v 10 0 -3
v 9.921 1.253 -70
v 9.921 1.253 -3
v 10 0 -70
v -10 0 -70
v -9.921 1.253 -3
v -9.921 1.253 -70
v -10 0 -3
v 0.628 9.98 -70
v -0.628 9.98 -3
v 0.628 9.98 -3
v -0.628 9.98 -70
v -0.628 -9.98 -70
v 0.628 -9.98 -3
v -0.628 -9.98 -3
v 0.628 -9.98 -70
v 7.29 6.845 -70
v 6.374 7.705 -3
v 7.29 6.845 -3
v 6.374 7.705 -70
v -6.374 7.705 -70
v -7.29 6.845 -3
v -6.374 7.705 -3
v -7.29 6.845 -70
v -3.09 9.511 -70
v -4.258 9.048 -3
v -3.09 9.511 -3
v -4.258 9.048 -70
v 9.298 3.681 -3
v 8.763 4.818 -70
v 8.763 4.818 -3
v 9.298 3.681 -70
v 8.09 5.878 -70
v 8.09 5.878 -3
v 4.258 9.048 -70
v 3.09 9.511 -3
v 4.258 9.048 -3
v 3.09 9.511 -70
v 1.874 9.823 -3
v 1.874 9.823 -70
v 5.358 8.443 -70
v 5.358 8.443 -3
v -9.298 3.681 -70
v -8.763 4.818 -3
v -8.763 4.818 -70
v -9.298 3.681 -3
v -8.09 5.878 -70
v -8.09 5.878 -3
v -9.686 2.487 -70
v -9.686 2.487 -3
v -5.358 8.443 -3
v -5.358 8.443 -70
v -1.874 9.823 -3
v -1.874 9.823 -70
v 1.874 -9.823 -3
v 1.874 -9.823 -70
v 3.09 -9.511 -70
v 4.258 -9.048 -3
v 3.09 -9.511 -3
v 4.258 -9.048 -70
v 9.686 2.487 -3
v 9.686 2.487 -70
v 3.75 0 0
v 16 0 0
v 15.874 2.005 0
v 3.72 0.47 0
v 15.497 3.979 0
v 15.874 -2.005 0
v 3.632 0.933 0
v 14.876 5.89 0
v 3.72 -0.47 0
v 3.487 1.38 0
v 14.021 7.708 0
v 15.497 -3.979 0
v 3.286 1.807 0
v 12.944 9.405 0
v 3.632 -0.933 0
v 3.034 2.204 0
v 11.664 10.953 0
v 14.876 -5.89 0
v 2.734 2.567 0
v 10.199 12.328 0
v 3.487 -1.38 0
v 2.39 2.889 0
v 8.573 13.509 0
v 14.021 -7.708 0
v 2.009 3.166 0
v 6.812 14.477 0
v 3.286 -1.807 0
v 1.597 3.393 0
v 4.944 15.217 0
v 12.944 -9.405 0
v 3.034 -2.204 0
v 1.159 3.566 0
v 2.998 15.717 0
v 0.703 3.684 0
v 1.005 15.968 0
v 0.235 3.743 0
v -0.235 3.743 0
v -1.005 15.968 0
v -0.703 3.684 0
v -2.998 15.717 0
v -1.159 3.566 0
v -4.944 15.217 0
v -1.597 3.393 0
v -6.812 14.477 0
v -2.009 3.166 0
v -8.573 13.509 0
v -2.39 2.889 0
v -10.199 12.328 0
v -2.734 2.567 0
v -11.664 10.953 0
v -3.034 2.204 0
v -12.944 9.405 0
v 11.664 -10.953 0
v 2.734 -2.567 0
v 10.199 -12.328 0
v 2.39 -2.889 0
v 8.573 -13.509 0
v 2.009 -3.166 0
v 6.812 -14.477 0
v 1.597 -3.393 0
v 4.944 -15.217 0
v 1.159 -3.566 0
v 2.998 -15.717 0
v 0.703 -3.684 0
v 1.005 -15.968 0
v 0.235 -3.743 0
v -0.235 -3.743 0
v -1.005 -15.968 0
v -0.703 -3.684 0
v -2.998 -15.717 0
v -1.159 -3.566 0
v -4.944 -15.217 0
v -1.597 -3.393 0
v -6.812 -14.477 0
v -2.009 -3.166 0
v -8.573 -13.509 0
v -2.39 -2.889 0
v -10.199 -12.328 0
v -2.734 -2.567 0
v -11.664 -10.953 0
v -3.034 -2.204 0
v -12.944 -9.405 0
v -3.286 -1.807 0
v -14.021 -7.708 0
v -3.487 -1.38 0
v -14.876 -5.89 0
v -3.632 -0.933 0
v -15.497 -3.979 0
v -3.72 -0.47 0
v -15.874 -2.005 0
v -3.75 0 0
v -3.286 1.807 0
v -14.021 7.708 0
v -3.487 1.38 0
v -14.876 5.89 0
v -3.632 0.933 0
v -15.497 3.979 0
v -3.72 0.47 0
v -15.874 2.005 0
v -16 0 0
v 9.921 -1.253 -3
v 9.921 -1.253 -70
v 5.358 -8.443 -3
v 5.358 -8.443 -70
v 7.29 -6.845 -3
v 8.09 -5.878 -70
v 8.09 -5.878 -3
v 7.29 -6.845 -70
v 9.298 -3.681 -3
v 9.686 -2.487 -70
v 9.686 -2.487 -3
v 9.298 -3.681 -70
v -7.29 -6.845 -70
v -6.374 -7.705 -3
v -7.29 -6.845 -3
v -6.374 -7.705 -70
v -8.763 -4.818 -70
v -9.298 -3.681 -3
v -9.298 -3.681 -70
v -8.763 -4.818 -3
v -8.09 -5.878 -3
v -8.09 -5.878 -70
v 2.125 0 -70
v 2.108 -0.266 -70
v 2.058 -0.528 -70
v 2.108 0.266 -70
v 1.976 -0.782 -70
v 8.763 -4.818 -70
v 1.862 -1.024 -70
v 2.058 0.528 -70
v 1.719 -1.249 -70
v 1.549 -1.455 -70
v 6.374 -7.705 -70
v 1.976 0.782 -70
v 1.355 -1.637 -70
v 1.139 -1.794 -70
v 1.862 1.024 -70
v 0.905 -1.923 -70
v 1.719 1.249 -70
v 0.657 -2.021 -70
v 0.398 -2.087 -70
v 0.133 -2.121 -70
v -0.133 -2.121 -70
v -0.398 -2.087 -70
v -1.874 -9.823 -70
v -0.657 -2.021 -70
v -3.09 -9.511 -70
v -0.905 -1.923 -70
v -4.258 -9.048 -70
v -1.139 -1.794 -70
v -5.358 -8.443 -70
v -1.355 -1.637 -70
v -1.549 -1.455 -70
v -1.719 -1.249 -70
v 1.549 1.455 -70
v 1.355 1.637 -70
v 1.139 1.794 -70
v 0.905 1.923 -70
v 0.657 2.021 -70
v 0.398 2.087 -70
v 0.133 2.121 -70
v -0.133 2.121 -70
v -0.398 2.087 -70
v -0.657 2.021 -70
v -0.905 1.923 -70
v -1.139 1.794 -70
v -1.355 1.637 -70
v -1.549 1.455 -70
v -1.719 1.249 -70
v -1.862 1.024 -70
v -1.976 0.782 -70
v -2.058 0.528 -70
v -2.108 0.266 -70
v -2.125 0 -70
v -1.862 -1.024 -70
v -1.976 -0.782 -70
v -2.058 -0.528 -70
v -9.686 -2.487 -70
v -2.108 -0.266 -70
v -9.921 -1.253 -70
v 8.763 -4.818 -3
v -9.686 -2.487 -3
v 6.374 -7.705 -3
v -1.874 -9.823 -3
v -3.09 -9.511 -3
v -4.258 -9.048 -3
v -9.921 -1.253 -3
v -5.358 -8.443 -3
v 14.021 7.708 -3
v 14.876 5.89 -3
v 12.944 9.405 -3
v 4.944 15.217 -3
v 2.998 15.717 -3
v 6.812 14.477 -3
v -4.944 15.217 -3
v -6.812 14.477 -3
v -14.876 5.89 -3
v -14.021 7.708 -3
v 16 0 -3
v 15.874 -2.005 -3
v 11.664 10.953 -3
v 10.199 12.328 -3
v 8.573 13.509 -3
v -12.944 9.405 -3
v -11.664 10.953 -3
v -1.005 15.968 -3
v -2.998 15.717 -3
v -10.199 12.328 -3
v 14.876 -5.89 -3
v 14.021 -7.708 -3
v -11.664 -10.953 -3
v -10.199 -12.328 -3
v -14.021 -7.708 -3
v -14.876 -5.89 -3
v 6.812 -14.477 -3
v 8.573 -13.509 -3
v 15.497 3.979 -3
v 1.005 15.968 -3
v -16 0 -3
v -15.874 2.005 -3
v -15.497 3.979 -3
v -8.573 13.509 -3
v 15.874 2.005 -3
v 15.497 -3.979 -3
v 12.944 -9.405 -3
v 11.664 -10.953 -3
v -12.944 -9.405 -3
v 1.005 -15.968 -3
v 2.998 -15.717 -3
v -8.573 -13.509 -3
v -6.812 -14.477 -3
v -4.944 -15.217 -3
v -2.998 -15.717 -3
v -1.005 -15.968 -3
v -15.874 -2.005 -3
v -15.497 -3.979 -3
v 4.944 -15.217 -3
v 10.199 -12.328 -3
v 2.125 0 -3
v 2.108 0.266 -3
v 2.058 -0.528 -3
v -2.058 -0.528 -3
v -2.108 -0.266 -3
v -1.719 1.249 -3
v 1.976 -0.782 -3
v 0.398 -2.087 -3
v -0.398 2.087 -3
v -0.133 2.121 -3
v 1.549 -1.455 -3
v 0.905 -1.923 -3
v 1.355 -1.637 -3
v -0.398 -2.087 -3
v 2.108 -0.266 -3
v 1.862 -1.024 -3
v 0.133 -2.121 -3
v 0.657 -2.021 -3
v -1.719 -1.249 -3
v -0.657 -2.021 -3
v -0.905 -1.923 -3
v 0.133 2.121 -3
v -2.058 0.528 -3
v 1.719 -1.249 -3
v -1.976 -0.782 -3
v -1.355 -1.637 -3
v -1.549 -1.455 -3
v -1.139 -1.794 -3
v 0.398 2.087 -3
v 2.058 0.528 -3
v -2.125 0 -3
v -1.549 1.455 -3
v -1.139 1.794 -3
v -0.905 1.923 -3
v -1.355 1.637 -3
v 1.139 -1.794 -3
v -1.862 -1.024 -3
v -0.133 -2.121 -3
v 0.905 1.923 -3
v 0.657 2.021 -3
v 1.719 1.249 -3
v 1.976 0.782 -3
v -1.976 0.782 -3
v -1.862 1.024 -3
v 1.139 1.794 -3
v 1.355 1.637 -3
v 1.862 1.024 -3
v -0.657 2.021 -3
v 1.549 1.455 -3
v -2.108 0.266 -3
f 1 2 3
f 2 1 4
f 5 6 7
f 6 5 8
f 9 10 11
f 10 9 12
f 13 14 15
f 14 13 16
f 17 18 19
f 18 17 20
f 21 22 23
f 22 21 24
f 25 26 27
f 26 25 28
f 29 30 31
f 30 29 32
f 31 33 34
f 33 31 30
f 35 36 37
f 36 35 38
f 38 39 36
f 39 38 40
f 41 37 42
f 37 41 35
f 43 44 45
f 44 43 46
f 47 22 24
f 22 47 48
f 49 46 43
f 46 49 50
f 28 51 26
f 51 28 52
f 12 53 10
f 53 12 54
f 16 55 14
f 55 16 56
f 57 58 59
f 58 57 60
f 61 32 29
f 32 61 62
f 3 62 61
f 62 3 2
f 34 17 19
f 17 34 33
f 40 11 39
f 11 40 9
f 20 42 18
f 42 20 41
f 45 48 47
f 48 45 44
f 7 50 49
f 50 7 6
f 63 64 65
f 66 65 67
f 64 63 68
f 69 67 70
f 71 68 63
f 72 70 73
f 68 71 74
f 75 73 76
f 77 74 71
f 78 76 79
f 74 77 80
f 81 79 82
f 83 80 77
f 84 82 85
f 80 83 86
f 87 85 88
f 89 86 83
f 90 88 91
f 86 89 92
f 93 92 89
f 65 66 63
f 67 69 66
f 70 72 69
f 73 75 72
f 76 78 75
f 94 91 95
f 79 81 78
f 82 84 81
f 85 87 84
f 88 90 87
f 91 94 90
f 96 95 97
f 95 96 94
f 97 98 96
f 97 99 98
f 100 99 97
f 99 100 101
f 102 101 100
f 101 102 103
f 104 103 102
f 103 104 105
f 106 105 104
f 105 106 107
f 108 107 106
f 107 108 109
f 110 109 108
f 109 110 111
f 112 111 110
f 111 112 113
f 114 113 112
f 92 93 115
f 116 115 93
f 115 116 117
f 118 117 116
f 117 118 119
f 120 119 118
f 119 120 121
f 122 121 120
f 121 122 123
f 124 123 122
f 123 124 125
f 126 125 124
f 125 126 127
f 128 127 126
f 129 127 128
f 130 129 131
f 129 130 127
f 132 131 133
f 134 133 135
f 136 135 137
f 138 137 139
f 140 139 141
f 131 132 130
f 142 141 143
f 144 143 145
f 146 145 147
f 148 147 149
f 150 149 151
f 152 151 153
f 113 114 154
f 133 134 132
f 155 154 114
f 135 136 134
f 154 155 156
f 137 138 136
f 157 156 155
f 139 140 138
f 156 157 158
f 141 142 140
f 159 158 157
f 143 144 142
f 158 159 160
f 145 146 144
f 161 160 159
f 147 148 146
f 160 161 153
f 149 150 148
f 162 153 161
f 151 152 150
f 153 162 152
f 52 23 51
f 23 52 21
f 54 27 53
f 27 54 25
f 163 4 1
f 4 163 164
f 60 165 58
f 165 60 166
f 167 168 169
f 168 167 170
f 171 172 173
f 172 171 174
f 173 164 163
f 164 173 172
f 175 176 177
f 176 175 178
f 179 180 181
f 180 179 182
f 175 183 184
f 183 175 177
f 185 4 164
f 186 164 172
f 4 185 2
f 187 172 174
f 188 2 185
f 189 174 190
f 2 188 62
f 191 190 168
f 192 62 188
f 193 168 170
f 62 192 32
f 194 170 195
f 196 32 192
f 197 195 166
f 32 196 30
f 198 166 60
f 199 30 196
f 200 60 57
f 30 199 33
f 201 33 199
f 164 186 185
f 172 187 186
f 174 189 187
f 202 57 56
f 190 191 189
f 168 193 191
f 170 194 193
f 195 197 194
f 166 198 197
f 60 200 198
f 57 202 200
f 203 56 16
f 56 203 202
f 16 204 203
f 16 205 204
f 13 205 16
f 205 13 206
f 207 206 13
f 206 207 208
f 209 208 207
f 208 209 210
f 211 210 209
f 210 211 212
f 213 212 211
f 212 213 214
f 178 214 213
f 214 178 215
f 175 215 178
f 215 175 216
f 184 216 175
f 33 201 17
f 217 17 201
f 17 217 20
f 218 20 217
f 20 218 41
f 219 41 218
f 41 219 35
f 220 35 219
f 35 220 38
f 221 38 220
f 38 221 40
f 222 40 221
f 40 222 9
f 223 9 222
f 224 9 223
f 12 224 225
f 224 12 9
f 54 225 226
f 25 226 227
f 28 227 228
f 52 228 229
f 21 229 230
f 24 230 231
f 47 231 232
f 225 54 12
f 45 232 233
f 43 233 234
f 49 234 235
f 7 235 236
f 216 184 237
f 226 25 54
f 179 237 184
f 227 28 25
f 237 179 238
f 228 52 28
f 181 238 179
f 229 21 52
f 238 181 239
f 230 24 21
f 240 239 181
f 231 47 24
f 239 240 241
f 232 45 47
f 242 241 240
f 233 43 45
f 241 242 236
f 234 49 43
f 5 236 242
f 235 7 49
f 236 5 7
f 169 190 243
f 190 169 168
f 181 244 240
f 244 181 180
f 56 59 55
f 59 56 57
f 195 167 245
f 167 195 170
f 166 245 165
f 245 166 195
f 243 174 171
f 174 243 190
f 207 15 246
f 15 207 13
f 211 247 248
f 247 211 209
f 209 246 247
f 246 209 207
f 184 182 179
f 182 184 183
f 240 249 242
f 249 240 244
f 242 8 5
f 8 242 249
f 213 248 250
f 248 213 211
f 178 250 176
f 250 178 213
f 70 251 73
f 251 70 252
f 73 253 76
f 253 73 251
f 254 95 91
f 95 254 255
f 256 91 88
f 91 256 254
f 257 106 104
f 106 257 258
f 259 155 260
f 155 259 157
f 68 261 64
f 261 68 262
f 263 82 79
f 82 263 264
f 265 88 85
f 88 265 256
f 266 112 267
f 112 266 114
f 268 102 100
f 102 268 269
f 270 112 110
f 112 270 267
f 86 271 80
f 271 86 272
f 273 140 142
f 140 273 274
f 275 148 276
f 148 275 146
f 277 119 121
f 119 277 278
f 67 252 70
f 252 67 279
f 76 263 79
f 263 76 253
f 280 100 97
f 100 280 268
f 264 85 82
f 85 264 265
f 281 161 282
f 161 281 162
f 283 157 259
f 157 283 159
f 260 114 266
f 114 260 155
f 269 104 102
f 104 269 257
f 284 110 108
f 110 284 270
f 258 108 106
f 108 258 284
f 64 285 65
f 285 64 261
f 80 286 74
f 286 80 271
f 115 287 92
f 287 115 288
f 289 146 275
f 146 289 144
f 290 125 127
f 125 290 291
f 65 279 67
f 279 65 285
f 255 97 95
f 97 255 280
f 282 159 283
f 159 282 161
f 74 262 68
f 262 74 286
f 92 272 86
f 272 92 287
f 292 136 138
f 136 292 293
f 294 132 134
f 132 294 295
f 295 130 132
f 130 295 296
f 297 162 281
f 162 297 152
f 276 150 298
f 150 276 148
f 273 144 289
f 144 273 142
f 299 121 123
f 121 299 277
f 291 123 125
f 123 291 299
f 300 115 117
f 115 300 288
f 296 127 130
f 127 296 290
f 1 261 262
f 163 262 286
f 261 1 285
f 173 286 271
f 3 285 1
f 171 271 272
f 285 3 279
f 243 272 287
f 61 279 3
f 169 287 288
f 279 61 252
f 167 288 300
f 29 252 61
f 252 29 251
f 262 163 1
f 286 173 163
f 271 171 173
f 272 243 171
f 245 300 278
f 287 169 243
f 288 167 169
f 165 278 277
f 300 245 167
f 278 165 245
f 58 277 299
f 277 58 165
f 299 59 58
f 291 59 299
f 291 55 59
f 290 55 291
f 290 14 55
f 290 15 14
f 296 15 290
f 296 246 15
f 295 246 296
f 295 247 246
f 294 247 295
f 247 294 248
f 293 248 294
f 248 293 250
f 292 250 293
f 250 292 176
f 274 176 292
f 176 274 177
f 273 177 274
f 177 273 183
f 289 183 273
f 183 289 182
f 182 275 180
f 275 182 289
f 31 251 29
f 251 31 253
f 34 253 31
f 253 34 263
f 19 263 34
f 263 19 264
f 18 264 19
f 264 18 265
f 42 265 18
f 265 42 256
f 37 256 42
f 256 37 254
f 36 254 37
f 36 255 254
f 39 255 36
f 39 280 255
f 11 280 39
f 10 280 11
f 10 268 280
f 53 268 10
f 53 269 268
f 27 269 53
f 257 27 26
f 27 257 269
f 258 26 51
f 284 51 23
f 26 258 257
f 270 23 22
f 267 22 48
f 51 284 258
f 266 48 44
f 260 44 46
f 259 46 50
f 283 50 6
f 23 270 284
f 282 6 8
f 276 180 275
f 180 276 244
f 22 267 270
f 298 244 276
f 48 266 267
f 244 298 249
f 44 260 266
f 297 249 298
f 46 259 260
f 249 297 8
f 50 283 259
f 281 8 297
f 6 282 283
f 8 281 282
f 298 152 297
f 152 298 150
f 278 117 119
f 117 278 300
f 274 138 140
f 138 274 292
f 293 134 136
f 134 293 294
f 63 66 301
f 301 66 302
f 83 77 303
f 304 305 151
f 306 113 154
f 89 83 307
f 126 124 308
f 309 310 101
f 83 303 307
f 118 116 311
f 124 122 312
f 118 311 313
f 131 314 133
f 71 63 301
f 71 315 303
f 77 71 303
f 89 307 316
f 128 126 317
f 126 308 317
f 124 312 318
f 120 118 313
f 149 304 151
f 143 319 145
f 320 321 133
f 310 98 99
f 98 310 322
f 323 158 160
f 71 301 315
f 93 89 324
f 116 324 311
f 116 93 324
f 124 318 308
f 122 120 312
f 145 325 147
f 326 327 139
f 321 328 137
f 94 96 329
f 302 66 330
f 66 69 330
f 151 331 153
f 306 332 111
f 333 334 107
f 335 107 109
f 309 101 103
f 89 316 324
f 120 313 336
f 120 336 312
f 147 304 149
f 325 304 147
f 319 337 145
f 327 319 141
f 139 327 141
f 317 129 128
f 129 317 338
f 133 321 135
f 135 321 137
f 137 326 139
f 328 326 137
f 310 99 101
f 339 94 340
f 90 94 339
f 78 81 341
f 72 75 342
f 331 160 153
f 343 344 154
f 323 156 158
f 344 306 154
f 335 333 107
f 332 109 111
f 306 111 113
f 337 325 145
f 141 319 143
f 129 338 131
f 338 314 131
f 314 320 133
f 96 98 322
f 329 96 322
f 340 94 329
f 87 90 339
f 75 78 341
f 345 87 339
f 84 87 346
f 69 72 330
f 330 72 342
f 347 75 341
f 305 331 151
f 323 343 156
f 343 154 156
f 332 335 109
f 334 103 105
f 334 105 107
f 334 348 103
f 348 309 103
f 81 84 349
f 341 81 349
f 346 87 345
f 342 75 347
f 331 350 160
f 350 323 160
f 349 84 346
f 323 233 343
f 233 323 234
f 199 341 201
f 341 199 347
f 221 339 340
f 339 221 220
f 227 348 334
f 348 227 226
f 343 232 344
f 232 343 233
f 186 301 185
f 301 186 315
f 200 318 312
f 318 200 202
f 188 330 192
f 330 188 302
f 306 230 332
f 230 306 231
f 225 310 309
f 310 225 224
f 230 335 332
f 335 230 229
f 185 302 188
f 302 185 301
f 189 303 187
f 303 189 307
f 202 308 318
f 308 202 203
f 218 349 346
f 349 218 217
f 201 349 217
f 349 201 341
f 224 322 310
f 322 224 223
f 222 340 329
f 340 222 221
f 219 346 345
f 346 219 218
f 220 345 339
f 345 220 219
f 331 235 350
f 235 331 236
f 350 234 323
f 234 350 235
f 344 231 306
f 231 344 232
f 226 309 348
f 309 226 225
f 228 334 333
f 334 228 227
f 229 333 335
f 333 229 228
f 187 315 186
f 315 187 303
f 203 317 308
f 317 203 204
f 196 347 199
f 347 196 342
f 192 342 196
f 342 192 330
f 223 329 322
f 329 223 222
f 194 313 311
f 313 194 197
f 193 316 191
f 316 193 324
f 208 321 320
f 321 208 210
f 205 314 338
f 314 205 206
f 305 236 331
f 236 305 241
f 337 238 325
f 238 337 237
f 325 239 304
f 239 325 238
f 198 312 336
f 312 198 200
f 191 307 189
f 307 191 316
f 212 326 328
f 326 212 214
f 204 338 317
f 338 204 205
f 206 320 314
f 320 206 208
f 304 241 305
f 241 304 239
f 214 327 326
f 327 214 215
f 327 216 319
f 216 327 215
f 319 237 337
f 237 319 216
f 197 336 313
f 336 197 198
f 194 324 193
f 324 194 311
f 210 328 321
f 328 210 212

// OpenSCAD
$fn = 50;


difference() {
	union() {
		translate(v = [0, 0, -70.0000000000]) {
			cylinder(h = 70, r = 10.0000000000);
		}
		translate(v = [0, 0, -3.0000000000]) {
			cylinder(h = 3, r = 16.0000000000);
		}
	}
	union() {
		translate(v = [0, 0, 0]) {
			rotate(a = [0, 0, 0]) {
				difference() {
					union() {
						#translate(v = [0, 0, -70.0000000000]) {
							cylinder(h = 70, r = 2.0000000000);
						}
						#translate(v = [0, 0, -3]) {
							cylinder(h = 3, r1 = 2.1250000000, r2 = 3.7500000000);
						}
						#translate(v = [0, 0, -70.0000000000]) {
							cylinder(h = 70, r = 2.1250000000);
						}
						#translate(v = [0, 0, -70.0000000000]) {
							cylinder(h = 70, r = 2.0000000000);
						}
					}
					union();
				}
			}
		}
	}
}
